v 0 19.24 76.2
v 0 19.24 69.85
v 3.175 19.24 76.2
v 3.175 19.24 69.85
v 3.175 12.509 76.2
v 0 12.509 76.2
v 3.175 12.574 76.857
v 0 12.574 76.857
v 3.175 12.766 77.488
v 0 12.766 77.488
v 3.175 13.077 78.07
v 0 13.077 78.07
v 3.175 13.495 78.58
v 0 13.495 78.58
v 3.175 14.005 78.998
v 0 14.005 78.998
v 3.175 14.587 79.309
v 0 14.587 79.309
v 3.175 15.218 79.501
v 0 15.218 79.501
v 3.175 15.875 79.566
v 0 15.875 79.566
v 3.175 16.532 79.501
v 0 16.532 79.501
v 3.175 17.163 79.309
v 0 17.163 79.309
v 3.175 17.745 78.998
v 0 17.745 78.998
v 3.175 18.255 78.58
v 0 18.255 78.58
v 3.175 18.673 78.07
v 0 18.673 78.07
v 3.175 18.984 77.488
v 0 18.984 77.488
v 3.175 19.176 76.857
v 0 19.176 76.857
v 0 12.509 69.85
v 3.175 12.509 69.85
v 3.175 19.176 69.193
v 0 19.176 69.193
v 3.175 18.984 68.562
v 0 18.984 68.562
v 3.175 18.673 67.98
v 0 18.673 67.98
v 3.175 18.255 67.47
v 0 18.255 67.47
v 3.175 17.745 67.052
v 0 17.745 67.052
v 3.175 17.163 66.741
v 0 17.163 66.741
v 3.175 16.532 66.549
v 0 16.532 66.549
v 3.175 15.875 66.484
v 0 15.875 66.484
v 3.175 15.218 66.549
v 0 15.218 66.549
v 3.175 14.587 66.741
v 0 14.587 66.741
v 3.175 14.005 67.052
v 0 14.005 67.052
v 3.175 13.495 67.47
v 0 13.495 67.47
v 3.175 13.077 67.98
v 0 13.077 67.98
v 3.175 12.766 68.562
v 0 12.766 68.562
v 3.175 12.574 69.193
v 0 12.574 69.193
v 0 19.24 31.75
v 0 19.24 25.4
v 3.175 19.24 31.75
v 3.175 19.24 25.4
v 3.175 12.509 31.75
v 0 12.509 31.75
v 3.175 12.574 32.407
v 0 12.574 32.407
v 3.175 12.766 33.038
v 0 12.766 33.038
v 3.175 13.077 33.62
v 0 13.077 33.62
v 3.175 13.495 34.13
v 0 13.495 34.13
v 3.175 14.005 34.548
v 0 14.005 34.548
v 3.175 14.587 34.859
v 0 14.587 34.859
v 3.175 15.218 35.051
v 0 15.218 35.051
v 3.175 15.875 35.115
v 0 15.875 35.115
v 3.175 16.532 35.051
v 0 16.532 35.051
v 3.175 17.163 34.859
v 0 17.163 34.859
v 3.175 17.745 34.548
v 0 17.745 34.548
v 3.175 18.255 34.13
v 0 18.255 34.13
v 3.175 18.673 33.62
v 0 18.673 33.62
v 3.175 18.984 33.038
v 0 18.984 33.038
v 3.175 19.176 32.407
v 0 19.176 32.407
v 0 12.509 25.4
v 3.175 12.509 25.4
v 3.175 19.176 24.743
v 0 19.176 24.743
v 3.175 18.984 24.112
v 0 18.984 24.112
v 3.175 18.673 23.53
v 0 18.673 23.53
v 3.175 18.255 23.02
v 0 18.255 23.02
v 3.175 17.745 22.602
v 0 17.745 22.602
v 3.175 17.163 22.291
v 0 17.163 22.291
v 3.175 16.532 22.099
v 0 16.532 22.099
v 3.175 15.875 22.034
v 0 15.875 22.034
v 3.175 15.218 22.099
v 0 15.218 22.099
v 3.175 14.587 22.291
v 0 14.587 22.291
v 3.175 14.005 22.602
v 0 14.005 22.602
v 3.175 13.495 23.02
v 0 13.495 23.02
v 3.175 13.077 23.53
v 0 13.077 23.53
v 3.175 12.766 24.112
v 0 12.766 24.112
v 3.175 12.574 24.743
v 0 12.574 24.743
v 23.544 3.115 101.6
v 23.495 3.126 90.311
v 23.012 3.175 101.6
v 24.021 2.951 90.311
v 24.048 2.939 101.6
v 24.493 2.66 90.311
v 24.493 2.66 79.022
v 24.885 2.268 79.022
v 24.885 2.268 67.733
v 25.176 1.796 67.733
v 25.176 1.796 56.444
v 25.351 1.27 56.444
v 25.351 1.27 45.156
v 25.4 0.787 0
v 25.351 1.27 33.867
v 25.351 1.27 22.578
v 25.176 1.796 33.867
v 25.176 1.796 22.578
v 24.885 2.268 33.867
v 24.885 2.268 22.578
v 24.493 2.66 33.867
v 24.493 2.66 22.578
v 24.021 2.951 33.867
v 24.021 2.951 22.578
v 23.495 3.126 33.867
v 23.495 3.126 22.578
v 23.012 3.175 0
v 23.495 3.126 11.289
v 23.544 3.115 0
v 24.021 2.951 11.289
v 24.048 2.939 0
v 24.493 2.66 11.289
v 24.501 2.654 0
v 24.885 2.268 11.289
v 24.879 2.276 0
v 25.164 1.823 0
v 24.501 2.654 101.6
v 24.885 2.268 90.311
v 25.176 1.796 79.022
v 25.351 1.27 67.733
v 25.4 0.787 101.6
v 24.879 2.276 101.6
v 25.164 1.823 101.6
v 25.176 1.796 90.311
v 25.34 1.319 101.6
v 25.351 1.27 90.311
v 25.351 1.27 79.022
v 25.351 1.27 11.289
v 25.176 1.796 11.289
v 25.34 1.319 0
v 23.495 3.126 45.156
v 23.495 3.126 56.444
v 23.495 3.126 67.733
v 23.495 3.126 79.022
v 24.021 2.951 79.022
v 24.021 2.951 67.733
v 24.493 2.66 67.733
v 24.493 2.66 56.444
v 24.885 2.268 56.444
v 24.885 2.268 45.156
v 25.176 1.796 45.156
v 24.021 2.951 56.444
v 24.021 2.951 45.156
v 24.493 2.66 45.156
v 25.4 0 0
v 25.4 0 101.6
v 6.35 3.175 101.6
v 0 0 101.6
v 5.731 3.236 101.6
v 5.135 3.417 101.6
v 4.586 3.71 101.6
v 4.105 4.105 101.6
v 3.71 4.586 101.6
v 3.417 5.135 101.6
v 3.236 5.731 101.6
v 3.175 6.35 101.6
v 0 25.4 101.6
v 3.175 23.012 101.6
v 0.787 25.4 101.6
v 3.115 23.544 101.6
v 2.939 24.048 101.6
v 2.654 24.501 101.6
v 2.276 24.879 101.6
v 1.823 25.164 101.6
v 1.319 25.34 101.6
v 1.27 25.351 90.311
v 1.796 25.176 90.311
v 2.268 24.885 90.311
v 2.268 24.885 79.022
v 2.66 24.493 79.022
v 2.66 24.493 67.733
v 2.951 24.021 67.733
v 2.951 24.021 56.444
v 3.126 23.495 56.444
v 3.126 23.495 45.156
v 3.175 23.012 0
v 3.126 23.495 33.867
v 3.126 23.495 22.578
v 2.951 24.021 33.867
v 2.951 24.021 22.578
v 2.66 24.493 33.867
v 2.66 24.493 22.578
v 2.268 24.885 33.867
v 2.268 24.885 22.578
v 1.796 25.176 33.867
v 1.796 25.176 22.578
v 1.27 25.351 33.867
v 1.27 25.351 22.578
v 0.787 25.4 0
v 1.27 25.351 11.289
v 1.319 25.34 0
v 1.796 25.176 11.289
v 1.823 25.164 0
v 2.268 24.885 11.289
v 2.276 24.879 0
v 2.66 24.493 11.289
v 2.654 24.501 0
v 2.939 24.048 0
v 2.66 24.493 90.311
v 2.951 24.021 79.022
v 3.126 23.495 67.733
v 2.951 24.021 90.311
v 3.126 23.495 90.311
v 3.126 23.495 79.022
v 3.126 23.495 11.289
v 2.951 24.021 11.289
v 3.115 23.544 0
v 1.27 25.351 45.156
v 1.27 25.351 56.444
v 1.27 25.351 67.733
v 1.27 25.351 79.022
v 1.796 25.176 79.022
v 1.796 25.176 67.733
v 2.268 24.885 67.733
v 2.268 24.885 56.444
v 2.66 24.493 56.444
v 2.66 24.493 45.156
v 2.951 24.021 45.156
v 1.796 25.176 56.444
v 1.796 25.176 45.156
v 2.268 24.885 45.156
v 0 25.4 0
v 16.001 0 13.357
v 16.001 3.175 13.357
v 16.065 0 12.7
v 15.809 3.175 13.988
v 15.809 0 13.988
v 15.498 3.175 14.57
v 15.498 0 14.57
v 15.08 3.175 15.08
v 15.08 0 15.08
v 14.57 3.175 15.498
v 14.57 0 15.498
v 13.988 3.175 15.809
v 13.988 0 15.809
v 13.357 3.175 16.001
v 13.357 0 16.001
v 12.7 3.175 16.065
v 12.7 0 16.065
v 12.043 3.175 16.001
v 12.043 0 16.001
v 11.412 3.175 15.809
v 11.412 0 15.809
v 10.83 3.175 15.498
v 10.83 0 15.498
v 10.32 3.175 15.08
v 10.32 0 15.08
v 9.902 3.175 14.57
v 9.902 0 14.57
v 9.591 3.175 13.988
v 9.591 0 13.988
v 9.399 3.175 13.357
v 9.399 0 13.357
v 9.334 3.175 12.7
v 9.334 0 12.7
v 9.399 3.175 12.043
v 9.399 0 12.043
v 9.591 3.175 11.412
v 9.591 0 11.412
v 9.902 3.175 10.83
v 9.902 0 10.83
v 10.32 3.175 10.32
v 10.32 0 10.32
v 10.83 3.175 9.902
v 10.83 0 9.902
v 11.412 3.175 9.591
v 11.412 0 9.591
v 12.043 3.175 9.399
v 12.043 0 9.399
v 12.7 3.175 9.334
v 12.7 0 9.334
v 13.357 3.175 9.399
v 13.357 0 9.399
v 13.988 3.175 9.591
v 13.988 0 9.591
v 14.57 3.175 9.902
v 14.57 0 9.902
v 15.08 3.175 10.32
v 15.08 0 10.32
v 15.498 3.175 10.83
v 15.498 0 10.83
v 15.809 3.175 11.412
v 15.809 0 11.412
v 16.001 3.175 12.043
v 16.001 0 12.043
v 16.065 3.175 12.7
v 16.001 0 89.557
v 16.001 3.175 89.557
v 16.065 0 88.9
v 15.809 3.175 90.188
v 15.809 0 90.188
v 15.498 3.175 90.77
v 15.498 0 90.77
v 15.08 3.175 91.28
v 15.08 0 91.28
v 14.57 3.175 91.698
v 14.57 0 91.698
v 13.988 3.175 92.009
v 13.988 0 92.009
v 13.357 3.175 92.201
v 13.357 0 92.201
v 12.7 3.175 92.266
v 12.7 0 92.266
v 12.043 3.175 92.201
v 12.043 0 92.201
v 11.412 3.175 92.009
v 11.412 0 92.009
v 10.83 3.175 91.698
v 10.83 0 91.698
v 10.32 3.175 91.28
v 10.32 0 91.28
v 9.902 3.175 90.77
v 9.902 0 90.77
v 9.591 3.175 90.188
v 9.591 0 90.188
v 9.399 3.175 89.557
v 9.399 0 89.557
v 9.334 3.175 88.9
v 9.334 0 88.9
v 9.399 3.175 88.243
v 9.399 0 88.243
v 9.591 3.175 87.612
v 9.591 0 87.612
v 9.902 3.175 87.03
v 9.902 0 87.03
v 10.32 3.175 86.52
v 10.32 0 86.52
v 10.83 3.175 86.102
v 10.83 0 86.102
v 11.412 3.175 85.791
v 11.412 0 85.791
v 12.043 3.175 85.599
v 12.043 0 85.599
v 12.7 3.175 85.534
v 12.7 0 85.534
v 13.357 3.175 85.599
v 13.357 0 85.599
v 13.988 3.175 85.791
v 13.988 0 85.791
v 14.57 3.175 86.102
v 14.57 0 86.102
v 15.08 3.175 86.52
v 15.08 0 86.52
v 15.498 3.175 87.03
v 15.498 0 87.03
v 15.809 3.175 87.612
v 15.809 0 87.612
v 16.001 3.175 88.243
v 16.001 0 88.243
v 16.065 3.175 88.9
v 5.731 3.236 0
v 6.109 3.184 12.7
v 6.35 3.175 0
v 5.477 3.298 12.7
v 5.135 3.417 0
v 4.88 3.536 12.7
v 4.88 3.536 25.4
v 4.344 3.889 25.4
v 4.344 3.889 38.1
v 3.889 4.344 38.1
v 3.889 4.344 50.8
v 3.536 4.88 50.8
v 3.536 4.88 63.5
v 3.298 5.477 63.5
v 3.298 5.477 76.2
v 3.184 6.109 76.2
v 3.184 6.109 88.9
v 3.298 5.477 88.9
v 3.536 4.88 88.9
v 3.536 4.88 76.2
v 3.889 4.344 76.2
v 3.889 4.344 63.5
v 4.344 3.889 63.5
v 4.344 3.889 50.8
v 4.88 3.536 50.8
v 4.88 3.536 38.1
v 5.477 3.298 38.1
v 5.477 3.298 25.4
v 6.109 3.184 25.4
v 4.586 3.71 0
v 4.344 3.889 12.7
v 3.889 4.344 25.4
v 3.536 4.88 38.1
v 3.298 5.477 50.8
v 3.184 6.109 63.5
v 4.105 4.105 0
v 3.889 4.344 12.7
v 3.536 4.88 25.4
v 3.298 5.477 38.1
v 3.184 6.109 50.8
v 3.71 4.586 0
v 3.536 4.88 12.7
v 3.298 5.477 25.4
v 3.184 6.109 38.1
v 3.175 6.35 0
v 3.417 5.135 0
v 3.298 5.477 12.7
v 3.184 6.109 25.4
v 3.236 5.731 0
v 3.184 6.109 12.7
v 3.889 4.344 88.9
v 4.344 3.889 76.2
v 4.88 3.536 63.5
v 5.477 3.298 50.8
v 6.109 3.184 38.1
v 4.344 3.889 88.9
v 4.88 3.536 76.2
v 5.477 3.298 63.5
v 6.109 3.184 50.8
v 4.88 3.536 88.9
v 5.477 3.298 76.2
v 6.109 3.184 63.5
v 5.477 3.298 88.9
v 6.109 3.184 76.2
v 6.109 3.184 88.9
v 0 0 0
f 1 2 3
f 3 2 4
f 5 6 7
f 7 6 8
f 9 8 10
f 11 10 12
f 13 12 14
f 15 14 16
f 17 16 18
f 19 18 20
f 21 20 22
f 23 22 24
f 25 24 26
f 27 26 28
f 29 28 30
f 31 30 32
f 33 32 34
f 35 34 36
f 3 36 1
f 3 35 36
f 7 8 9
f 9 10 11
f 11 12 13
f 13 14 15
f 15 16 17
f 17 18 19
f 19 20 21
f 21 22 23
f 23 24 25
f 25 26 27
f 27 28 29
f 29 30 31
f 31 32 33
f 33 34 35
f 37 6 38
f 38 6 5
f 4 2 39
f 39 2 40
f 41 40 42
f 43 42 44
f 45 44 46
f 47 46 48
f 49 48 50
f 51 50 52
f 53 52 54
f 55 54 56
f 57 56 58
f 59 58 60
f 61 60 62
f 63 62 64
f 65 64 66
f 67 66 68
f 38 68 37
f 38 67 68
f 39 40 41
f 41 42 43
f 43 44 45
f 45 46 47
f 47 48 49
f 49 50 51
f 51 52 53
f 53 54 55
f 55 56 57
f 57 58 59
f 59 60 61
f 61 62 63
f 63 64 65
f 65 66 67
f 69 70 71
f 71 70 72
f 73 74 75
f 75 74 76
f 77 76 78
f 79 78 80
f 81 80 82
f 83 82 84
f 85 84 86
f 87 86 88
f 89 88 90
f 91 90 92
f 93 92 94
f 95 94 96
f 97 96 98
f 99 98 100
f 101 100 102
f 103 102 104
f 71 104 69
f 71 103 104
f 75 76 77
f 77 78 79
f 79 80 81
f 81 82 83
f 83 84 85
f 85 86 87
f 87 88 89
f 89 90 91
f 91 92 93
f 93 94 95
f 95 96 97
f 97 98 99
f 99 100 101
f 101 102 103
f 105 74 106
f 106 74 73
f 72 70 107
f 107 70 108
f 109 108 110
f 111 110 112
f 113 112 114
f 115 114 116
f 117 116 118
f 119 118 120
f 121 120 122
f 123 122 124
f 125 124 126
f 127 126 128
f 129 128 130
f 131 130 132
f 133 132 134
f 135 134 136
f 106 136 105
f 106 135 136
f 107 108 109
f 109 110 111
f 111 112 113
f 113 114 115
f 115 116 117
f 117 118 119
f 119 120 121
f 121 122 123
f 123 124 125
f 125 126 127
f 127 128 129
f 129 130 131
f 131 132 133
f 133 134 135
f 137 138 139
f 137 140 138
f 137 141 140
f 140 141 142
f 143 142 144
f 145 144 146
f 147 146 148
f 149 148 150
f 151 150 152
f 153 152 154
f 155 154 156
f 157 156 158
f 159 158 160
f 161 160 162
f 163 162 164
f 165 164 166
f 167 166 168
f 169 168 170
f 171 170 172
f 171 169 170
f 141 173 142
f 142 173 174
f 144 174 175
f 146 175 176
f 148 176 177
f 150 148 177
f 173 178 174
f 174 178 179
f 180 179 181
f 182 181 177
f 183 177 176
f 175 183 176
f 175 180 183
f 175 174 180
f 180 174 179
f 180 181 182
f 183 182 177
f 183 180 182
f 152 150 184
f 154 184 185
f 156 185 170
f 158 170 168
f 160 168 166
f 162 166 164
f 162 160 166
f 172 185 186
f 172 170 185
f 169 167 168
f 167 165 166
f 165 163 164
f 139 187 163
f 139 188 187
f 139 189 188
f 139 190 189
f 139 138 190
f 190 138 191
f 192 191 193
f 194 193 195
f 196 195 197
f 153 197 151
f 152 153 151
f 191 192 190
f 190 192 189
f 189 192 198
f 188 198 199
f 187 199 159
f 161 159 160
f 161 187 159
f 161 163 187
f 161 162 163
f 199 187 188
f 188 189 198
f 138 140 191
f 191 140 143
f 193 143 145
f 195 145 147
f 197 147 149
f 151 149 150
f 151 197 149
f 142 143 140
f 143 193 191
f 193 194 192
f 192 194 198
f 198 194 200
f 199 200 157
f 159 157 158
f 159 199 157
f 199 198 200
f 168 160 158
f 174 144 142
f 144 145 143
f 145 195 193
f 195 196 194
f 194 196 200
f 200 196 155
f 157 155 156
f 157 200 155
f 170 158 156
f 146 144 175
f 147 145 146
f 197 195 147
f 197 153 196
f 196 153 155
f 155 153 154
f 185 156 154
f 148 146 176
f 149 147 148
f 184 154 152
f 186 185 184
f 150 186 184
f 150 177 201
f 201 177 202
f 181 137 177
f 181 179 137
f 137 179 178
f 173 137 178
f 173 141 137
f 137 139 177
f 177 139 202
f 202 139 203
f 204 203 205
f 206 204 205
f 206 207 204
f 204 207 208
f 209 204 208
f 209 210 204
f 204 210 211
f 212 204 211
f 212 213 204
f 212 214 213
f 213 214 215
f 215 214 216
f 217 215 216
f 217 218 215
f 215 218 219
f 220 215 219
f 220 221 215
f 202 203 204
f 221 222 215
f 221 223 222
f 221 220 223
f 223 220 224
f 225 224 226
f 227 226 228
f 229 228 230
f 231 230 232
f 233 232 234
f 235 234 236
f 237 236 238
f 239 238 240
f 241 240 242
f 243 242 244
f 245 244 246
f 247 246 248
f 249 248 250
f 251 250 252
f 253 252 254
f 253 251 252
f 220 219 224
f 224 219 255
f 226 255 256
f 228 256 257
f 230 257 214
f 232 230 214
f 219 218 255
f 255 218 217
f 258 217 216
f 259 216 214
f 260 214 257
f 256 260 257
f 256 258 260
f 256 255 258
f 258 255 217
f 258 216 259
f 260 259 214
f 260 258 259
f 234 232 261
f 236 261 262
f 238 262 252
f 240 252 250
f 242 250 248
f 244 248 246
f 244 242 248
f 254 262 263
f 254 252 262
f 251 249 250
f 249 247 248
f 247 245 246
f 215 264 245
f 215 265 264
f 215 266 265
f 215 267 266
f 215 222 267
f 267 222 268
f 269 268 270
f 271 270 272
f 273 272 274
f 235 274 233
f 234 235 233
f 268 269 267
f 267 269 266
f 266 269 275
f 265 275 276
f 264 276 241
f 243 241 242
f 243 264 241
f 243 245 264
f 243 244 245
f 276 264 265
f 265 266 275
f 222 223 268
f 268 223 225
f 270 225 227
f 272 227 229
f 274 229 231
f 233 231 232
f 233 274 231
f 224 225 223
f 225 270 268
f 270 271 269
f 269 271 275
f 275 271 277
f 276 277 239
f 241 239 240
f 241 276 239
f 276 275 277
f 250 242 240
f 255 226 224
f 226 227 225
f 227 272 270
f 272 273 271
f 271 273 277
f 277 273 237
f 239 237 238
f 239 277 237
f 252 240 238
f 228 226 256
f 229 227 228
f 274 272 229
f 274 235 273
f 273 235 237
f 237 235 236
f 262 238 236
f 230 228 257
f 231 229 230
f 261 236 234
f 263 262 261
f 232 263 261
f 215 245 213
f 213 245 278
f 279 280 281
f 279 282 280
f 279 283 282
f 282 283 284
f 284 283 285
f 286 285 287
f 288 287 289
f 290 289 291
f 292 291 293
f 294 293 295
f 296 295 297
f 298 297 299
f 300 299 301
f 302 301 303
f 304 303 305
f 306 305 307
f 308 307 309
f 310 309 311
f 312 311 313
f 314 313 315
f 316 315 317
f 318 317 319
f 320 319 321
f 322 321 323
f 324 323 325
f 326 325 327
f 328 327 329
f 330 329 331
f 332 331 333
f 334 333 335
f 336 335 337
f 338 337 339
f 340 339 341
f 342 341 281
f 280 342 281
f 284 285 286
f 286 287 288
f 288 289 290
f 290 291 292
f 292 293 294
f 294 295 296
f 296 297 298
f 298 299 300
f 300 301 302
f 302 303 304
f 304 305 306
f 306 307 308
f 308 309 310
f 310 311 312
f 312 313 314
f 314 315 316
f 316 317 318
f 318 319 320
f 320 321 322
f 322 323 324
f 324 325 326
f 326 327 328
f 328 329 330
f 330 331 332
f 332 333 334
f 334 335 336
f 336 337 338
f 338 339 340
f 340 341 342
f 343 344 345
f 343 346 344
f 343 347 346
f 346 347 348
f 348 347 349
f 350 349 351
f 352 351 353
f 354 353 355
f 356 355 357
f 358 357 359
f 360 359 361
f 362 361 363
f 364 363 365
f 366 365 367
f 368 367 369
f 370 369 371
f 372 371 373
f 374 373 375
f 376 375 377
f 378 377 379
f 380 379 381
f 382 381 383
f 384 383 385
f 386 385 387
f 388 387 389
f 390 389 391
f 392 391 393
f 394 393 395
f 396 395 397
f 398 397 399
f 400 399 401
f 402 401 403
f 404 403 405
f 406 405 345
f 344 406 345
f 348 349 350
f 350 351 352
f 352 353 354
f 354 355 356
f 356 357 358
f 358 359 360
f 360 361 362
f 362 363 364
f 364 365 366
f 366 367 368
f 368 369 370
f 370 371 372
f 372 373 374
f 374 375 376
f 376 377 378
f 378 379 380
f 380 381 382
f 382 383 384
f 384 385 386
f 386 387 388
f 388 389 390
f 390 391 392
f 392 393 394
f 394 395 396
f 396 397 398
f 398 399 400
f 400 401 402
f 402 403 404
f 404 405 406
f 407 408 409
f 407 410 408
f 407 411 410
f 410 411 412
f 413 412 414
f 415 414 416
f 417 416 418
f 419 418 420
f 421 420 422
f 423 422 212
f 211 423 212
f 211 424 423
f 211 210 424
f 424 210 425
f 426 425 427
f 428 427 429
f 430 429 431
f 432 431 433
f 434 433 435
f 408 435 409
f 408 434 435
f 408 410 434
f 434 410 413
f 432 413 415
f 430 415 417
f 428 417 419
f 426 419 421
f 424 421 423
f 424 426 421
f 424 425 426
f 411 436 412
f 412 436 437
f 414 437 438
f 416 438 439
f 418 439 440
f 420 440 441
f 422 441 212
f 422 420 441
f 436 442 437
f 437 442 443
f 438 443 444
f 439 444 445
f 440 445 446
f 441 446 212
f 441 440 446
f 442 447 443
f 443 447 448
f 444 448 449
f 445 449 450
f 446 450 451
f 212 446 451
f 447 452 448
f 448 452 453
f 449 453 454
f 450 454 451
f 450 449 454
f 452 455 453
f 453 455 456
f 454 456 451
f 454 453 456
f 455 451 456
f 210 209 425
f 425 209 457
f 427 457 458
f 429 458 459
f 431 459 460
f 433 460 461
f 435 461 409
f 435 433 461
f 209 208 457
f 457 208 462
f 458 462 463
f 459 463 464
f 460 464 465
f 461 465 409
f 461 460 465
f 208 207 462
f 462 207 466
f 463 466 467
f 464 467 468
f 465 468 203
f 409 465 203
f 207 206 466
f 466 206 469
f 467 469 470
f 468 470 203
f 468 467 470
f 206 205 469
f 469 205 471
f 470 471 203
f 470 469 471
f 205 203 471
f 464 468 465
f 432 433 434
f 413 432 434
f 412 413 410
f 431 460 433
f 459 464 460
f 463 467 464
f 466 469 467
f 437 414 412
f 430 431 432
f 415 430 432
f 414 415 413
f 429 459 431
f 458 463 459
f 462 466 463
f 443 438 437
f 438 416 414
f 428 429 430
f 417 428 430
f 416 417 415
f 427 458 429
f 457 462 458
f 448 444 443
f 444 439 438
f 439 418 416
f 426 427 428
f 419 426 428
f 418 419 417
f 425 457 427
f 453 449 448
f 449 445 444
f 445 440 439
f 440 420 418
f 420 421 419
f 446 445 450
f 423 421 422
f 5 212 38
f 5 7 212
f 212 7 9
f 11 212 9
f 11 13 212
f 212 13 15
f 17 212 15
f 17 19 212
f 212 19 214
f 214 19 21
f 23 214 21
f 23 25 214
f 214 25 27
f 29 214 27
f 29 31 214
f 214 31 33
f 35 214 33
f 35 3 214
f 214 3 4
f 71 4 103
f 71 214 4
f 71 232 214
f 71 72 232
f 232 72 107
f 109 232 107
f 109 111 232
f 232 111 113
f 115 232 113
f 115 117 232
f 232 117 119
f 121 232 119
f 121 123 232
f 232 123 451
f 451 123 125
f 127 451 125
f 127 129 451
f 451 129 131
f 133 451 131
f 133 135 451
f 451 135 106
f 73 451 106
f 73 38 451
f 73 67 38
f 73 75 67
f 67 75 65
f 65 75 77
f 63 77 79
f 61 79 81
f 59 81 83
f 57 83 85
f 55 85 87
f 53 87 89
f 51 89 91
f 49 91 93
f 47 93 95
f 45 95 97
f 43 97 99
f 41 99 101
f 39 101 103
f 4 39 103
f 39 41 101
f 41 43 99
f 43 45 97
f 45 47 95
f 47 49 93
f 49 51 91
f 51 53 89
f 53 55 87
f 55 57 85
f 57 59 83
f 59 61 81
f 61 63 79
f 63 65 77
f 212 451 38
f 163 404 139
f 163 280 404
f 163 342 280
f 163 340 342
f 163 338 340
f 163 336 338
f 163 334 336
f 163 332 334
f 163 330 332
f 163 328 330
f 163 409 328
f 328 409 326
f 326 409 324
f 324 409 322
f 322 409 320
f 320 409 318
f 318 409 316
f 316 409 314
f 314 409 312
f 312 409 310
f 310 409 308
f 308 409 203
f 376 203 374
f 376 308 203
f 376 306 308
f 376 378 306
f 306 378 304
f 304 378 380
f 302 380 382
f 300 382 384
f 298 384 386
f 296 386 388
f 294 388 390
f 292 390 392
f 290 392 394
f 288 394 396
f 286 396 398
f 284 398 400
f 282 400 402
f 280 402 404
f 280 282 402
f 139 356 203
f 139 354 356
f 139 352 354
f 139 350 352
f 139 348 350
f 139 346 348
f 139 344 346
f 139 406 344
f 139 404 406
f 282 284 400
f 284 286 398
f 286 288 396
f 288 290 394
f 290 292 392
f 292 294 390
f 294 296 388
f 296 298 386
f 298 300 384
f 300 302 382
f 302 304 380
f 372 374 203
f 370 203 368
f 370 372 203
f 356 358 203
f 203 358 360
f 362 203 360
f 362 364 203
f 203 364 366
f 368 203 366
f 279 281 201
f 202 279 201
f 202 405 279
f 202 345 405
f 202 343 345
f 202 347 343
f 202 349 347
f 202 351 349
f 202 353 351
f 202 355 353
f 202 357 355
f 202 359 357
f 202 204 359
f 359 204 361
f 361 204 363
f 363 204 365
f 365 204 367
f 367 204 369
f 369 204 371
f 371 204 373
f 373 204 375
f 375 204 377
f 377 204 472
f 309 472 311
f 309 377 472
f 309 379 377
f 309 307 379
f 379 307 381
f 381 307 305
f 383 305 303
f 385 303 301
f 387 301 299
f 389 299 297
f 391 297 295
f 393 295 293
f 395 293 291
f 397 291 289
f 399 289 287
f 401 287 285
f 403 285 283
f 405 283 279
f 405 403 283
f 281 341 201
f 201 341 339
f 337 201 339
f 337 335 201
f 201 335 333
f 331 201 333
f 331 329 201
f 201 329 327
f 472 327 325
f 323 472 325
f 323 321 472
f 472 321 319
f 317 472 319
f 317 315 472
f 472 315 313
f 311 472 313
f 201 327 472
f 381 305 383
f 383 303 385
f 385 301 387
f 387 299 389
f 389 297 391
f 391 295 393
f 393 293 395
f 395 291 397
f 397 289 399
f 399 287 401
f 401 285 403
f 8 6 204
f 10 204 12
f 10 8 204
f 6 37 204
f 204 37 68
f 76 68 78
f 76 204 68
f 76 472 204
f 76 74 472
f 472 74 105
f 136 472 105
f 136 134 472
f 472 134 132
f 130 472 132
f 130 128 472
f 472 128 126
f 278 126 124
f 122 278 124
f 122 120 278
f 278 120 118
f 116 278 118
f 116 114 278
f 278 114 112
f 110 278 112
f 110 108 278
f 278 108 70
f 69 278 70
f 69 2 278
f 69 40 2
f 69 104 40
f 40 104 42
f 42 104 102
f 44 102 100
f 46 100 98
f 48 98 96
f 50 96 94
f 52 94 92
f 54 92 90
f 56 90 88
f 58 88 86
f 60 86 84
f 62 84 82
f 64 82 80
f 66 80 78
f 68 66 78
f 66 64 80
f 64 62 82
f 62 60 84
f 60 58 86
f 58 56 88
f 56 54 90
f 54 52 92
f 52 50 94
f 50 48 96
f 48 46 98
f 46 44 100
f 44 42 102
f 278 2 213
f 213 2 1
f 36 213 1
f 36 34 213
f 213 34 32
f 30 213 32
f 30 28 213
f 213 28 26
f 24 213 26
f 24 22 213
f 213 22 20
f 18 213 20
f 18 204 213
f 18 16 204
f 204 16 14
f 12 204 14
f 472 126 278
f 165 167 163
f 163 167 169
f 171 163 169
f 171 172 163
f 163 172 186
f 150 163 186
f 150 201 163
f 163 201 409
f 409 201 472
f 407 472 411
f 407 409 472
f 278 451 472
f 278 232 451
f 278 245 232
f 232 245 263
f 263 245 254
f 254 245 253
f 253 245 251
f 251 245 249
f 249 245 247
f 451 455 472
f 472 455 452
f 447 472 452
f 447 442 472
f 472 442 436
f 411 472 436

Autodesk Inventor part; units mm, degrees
ref_plane "YZ Plane" through (0, 0, 0) normal (1, 0, 0) x (0, 1, 0)
ref_plane "XZ Plane" through (0, 0, 0) normal (0, 1, 0) x (-1, 0, 0)
ref_plane "XY Plane" through (0, 0, 0) normal (0, 0, 1) x (1, 0, 0)
sketch "Sketch1" plane through (0, 0, 0) normal (0, 0, 1) x (1, 0, 0)
  line L0 (0, 25.4) -> (0, 0)
  line L1 (0, 0) -> (25.4, 0)
  line L2 (25.4, 0) -> (25.4, 3.175)
  line L3 (25.4, 3.175) -> (3.175, 3.175)
  line L4 (3.175, 3.175) -> (3.175, 25.4)
  line L5 (3.175, 25.4) -> (0, 25.4)
  dimension "d0" = 25.4
  dimension "d1" = 25.4
  dimension "d2" = 3.175
  dimension "d3" = 3.175
extrude "Extrusion1" add sketch "Sketch1" along normal blind 101.6
fillet "Fillet1" radius 3.175 1 edges at (3.175, 3.175, 50.8)
hole "Hole1" at (12.7, 3.175, 88.9) direction (0, -1, 0) diameter 6.731 end through all
pattern_linear "Rectangular Pattern1" count 2 spacing 76.2 along (0, 0, -1) of "Hole1"
fillet "Fillet3" radius 2.3876 2 edges at (3.175, 25.4, 50.8) (25.4, 3.175, 50.8)
sketch "Sketch2" plane through (3.175, 6.35, 101.6) normal (1, 0, 0) x (0, 0, -1)
  line L0 (0, 16.6624) -> (0, 0) projected
  line L1 (101.6, 16.6624) -> (101.6, 0) projected
  arc A0 (25.4, 12.8905) -> (25.4, 6.1595) centre (25.4, 9.525) ccw
  arc A1 (31.75, 6.1595) -> (31.75, 12.8905) centre (31.75, 9.525) ccw
  arc A2 (69.85, 12.8905) -> (69.85, 6.1595) centre (69.85, 9.525) ccw
  arc A3 (76.2, 6.1595) -> (76.2, 12.8905) centre (76.2, 9.525) ccw
  line L2 (25.4, 12.8905) -> (31.75, 12.8905)
  line L3 (31.75, 6.1595) -> (25.4, 6.1595)
  line L4 (69.85, 12.8905) -> (76.2, 12.8905)
  line L5 (76.2, 6.1595) -> (69.85, 6.1595)
  line L6 (101.6, -6.35) -> (0, -6.35) projected
  dimension "d21" = 6.731
  dimension "d22" = 6.35
  dimension "d23" = 6.35
  dimension "d24" = 15.875
  dimension "d25" = 15.875
  dimension "d26" = 25.4
  dimension "d27" = 25.4
extrude "Extrusion2" cut sketch "Sketch2" against normal blind 25.4
properties part number "GE-12102"
